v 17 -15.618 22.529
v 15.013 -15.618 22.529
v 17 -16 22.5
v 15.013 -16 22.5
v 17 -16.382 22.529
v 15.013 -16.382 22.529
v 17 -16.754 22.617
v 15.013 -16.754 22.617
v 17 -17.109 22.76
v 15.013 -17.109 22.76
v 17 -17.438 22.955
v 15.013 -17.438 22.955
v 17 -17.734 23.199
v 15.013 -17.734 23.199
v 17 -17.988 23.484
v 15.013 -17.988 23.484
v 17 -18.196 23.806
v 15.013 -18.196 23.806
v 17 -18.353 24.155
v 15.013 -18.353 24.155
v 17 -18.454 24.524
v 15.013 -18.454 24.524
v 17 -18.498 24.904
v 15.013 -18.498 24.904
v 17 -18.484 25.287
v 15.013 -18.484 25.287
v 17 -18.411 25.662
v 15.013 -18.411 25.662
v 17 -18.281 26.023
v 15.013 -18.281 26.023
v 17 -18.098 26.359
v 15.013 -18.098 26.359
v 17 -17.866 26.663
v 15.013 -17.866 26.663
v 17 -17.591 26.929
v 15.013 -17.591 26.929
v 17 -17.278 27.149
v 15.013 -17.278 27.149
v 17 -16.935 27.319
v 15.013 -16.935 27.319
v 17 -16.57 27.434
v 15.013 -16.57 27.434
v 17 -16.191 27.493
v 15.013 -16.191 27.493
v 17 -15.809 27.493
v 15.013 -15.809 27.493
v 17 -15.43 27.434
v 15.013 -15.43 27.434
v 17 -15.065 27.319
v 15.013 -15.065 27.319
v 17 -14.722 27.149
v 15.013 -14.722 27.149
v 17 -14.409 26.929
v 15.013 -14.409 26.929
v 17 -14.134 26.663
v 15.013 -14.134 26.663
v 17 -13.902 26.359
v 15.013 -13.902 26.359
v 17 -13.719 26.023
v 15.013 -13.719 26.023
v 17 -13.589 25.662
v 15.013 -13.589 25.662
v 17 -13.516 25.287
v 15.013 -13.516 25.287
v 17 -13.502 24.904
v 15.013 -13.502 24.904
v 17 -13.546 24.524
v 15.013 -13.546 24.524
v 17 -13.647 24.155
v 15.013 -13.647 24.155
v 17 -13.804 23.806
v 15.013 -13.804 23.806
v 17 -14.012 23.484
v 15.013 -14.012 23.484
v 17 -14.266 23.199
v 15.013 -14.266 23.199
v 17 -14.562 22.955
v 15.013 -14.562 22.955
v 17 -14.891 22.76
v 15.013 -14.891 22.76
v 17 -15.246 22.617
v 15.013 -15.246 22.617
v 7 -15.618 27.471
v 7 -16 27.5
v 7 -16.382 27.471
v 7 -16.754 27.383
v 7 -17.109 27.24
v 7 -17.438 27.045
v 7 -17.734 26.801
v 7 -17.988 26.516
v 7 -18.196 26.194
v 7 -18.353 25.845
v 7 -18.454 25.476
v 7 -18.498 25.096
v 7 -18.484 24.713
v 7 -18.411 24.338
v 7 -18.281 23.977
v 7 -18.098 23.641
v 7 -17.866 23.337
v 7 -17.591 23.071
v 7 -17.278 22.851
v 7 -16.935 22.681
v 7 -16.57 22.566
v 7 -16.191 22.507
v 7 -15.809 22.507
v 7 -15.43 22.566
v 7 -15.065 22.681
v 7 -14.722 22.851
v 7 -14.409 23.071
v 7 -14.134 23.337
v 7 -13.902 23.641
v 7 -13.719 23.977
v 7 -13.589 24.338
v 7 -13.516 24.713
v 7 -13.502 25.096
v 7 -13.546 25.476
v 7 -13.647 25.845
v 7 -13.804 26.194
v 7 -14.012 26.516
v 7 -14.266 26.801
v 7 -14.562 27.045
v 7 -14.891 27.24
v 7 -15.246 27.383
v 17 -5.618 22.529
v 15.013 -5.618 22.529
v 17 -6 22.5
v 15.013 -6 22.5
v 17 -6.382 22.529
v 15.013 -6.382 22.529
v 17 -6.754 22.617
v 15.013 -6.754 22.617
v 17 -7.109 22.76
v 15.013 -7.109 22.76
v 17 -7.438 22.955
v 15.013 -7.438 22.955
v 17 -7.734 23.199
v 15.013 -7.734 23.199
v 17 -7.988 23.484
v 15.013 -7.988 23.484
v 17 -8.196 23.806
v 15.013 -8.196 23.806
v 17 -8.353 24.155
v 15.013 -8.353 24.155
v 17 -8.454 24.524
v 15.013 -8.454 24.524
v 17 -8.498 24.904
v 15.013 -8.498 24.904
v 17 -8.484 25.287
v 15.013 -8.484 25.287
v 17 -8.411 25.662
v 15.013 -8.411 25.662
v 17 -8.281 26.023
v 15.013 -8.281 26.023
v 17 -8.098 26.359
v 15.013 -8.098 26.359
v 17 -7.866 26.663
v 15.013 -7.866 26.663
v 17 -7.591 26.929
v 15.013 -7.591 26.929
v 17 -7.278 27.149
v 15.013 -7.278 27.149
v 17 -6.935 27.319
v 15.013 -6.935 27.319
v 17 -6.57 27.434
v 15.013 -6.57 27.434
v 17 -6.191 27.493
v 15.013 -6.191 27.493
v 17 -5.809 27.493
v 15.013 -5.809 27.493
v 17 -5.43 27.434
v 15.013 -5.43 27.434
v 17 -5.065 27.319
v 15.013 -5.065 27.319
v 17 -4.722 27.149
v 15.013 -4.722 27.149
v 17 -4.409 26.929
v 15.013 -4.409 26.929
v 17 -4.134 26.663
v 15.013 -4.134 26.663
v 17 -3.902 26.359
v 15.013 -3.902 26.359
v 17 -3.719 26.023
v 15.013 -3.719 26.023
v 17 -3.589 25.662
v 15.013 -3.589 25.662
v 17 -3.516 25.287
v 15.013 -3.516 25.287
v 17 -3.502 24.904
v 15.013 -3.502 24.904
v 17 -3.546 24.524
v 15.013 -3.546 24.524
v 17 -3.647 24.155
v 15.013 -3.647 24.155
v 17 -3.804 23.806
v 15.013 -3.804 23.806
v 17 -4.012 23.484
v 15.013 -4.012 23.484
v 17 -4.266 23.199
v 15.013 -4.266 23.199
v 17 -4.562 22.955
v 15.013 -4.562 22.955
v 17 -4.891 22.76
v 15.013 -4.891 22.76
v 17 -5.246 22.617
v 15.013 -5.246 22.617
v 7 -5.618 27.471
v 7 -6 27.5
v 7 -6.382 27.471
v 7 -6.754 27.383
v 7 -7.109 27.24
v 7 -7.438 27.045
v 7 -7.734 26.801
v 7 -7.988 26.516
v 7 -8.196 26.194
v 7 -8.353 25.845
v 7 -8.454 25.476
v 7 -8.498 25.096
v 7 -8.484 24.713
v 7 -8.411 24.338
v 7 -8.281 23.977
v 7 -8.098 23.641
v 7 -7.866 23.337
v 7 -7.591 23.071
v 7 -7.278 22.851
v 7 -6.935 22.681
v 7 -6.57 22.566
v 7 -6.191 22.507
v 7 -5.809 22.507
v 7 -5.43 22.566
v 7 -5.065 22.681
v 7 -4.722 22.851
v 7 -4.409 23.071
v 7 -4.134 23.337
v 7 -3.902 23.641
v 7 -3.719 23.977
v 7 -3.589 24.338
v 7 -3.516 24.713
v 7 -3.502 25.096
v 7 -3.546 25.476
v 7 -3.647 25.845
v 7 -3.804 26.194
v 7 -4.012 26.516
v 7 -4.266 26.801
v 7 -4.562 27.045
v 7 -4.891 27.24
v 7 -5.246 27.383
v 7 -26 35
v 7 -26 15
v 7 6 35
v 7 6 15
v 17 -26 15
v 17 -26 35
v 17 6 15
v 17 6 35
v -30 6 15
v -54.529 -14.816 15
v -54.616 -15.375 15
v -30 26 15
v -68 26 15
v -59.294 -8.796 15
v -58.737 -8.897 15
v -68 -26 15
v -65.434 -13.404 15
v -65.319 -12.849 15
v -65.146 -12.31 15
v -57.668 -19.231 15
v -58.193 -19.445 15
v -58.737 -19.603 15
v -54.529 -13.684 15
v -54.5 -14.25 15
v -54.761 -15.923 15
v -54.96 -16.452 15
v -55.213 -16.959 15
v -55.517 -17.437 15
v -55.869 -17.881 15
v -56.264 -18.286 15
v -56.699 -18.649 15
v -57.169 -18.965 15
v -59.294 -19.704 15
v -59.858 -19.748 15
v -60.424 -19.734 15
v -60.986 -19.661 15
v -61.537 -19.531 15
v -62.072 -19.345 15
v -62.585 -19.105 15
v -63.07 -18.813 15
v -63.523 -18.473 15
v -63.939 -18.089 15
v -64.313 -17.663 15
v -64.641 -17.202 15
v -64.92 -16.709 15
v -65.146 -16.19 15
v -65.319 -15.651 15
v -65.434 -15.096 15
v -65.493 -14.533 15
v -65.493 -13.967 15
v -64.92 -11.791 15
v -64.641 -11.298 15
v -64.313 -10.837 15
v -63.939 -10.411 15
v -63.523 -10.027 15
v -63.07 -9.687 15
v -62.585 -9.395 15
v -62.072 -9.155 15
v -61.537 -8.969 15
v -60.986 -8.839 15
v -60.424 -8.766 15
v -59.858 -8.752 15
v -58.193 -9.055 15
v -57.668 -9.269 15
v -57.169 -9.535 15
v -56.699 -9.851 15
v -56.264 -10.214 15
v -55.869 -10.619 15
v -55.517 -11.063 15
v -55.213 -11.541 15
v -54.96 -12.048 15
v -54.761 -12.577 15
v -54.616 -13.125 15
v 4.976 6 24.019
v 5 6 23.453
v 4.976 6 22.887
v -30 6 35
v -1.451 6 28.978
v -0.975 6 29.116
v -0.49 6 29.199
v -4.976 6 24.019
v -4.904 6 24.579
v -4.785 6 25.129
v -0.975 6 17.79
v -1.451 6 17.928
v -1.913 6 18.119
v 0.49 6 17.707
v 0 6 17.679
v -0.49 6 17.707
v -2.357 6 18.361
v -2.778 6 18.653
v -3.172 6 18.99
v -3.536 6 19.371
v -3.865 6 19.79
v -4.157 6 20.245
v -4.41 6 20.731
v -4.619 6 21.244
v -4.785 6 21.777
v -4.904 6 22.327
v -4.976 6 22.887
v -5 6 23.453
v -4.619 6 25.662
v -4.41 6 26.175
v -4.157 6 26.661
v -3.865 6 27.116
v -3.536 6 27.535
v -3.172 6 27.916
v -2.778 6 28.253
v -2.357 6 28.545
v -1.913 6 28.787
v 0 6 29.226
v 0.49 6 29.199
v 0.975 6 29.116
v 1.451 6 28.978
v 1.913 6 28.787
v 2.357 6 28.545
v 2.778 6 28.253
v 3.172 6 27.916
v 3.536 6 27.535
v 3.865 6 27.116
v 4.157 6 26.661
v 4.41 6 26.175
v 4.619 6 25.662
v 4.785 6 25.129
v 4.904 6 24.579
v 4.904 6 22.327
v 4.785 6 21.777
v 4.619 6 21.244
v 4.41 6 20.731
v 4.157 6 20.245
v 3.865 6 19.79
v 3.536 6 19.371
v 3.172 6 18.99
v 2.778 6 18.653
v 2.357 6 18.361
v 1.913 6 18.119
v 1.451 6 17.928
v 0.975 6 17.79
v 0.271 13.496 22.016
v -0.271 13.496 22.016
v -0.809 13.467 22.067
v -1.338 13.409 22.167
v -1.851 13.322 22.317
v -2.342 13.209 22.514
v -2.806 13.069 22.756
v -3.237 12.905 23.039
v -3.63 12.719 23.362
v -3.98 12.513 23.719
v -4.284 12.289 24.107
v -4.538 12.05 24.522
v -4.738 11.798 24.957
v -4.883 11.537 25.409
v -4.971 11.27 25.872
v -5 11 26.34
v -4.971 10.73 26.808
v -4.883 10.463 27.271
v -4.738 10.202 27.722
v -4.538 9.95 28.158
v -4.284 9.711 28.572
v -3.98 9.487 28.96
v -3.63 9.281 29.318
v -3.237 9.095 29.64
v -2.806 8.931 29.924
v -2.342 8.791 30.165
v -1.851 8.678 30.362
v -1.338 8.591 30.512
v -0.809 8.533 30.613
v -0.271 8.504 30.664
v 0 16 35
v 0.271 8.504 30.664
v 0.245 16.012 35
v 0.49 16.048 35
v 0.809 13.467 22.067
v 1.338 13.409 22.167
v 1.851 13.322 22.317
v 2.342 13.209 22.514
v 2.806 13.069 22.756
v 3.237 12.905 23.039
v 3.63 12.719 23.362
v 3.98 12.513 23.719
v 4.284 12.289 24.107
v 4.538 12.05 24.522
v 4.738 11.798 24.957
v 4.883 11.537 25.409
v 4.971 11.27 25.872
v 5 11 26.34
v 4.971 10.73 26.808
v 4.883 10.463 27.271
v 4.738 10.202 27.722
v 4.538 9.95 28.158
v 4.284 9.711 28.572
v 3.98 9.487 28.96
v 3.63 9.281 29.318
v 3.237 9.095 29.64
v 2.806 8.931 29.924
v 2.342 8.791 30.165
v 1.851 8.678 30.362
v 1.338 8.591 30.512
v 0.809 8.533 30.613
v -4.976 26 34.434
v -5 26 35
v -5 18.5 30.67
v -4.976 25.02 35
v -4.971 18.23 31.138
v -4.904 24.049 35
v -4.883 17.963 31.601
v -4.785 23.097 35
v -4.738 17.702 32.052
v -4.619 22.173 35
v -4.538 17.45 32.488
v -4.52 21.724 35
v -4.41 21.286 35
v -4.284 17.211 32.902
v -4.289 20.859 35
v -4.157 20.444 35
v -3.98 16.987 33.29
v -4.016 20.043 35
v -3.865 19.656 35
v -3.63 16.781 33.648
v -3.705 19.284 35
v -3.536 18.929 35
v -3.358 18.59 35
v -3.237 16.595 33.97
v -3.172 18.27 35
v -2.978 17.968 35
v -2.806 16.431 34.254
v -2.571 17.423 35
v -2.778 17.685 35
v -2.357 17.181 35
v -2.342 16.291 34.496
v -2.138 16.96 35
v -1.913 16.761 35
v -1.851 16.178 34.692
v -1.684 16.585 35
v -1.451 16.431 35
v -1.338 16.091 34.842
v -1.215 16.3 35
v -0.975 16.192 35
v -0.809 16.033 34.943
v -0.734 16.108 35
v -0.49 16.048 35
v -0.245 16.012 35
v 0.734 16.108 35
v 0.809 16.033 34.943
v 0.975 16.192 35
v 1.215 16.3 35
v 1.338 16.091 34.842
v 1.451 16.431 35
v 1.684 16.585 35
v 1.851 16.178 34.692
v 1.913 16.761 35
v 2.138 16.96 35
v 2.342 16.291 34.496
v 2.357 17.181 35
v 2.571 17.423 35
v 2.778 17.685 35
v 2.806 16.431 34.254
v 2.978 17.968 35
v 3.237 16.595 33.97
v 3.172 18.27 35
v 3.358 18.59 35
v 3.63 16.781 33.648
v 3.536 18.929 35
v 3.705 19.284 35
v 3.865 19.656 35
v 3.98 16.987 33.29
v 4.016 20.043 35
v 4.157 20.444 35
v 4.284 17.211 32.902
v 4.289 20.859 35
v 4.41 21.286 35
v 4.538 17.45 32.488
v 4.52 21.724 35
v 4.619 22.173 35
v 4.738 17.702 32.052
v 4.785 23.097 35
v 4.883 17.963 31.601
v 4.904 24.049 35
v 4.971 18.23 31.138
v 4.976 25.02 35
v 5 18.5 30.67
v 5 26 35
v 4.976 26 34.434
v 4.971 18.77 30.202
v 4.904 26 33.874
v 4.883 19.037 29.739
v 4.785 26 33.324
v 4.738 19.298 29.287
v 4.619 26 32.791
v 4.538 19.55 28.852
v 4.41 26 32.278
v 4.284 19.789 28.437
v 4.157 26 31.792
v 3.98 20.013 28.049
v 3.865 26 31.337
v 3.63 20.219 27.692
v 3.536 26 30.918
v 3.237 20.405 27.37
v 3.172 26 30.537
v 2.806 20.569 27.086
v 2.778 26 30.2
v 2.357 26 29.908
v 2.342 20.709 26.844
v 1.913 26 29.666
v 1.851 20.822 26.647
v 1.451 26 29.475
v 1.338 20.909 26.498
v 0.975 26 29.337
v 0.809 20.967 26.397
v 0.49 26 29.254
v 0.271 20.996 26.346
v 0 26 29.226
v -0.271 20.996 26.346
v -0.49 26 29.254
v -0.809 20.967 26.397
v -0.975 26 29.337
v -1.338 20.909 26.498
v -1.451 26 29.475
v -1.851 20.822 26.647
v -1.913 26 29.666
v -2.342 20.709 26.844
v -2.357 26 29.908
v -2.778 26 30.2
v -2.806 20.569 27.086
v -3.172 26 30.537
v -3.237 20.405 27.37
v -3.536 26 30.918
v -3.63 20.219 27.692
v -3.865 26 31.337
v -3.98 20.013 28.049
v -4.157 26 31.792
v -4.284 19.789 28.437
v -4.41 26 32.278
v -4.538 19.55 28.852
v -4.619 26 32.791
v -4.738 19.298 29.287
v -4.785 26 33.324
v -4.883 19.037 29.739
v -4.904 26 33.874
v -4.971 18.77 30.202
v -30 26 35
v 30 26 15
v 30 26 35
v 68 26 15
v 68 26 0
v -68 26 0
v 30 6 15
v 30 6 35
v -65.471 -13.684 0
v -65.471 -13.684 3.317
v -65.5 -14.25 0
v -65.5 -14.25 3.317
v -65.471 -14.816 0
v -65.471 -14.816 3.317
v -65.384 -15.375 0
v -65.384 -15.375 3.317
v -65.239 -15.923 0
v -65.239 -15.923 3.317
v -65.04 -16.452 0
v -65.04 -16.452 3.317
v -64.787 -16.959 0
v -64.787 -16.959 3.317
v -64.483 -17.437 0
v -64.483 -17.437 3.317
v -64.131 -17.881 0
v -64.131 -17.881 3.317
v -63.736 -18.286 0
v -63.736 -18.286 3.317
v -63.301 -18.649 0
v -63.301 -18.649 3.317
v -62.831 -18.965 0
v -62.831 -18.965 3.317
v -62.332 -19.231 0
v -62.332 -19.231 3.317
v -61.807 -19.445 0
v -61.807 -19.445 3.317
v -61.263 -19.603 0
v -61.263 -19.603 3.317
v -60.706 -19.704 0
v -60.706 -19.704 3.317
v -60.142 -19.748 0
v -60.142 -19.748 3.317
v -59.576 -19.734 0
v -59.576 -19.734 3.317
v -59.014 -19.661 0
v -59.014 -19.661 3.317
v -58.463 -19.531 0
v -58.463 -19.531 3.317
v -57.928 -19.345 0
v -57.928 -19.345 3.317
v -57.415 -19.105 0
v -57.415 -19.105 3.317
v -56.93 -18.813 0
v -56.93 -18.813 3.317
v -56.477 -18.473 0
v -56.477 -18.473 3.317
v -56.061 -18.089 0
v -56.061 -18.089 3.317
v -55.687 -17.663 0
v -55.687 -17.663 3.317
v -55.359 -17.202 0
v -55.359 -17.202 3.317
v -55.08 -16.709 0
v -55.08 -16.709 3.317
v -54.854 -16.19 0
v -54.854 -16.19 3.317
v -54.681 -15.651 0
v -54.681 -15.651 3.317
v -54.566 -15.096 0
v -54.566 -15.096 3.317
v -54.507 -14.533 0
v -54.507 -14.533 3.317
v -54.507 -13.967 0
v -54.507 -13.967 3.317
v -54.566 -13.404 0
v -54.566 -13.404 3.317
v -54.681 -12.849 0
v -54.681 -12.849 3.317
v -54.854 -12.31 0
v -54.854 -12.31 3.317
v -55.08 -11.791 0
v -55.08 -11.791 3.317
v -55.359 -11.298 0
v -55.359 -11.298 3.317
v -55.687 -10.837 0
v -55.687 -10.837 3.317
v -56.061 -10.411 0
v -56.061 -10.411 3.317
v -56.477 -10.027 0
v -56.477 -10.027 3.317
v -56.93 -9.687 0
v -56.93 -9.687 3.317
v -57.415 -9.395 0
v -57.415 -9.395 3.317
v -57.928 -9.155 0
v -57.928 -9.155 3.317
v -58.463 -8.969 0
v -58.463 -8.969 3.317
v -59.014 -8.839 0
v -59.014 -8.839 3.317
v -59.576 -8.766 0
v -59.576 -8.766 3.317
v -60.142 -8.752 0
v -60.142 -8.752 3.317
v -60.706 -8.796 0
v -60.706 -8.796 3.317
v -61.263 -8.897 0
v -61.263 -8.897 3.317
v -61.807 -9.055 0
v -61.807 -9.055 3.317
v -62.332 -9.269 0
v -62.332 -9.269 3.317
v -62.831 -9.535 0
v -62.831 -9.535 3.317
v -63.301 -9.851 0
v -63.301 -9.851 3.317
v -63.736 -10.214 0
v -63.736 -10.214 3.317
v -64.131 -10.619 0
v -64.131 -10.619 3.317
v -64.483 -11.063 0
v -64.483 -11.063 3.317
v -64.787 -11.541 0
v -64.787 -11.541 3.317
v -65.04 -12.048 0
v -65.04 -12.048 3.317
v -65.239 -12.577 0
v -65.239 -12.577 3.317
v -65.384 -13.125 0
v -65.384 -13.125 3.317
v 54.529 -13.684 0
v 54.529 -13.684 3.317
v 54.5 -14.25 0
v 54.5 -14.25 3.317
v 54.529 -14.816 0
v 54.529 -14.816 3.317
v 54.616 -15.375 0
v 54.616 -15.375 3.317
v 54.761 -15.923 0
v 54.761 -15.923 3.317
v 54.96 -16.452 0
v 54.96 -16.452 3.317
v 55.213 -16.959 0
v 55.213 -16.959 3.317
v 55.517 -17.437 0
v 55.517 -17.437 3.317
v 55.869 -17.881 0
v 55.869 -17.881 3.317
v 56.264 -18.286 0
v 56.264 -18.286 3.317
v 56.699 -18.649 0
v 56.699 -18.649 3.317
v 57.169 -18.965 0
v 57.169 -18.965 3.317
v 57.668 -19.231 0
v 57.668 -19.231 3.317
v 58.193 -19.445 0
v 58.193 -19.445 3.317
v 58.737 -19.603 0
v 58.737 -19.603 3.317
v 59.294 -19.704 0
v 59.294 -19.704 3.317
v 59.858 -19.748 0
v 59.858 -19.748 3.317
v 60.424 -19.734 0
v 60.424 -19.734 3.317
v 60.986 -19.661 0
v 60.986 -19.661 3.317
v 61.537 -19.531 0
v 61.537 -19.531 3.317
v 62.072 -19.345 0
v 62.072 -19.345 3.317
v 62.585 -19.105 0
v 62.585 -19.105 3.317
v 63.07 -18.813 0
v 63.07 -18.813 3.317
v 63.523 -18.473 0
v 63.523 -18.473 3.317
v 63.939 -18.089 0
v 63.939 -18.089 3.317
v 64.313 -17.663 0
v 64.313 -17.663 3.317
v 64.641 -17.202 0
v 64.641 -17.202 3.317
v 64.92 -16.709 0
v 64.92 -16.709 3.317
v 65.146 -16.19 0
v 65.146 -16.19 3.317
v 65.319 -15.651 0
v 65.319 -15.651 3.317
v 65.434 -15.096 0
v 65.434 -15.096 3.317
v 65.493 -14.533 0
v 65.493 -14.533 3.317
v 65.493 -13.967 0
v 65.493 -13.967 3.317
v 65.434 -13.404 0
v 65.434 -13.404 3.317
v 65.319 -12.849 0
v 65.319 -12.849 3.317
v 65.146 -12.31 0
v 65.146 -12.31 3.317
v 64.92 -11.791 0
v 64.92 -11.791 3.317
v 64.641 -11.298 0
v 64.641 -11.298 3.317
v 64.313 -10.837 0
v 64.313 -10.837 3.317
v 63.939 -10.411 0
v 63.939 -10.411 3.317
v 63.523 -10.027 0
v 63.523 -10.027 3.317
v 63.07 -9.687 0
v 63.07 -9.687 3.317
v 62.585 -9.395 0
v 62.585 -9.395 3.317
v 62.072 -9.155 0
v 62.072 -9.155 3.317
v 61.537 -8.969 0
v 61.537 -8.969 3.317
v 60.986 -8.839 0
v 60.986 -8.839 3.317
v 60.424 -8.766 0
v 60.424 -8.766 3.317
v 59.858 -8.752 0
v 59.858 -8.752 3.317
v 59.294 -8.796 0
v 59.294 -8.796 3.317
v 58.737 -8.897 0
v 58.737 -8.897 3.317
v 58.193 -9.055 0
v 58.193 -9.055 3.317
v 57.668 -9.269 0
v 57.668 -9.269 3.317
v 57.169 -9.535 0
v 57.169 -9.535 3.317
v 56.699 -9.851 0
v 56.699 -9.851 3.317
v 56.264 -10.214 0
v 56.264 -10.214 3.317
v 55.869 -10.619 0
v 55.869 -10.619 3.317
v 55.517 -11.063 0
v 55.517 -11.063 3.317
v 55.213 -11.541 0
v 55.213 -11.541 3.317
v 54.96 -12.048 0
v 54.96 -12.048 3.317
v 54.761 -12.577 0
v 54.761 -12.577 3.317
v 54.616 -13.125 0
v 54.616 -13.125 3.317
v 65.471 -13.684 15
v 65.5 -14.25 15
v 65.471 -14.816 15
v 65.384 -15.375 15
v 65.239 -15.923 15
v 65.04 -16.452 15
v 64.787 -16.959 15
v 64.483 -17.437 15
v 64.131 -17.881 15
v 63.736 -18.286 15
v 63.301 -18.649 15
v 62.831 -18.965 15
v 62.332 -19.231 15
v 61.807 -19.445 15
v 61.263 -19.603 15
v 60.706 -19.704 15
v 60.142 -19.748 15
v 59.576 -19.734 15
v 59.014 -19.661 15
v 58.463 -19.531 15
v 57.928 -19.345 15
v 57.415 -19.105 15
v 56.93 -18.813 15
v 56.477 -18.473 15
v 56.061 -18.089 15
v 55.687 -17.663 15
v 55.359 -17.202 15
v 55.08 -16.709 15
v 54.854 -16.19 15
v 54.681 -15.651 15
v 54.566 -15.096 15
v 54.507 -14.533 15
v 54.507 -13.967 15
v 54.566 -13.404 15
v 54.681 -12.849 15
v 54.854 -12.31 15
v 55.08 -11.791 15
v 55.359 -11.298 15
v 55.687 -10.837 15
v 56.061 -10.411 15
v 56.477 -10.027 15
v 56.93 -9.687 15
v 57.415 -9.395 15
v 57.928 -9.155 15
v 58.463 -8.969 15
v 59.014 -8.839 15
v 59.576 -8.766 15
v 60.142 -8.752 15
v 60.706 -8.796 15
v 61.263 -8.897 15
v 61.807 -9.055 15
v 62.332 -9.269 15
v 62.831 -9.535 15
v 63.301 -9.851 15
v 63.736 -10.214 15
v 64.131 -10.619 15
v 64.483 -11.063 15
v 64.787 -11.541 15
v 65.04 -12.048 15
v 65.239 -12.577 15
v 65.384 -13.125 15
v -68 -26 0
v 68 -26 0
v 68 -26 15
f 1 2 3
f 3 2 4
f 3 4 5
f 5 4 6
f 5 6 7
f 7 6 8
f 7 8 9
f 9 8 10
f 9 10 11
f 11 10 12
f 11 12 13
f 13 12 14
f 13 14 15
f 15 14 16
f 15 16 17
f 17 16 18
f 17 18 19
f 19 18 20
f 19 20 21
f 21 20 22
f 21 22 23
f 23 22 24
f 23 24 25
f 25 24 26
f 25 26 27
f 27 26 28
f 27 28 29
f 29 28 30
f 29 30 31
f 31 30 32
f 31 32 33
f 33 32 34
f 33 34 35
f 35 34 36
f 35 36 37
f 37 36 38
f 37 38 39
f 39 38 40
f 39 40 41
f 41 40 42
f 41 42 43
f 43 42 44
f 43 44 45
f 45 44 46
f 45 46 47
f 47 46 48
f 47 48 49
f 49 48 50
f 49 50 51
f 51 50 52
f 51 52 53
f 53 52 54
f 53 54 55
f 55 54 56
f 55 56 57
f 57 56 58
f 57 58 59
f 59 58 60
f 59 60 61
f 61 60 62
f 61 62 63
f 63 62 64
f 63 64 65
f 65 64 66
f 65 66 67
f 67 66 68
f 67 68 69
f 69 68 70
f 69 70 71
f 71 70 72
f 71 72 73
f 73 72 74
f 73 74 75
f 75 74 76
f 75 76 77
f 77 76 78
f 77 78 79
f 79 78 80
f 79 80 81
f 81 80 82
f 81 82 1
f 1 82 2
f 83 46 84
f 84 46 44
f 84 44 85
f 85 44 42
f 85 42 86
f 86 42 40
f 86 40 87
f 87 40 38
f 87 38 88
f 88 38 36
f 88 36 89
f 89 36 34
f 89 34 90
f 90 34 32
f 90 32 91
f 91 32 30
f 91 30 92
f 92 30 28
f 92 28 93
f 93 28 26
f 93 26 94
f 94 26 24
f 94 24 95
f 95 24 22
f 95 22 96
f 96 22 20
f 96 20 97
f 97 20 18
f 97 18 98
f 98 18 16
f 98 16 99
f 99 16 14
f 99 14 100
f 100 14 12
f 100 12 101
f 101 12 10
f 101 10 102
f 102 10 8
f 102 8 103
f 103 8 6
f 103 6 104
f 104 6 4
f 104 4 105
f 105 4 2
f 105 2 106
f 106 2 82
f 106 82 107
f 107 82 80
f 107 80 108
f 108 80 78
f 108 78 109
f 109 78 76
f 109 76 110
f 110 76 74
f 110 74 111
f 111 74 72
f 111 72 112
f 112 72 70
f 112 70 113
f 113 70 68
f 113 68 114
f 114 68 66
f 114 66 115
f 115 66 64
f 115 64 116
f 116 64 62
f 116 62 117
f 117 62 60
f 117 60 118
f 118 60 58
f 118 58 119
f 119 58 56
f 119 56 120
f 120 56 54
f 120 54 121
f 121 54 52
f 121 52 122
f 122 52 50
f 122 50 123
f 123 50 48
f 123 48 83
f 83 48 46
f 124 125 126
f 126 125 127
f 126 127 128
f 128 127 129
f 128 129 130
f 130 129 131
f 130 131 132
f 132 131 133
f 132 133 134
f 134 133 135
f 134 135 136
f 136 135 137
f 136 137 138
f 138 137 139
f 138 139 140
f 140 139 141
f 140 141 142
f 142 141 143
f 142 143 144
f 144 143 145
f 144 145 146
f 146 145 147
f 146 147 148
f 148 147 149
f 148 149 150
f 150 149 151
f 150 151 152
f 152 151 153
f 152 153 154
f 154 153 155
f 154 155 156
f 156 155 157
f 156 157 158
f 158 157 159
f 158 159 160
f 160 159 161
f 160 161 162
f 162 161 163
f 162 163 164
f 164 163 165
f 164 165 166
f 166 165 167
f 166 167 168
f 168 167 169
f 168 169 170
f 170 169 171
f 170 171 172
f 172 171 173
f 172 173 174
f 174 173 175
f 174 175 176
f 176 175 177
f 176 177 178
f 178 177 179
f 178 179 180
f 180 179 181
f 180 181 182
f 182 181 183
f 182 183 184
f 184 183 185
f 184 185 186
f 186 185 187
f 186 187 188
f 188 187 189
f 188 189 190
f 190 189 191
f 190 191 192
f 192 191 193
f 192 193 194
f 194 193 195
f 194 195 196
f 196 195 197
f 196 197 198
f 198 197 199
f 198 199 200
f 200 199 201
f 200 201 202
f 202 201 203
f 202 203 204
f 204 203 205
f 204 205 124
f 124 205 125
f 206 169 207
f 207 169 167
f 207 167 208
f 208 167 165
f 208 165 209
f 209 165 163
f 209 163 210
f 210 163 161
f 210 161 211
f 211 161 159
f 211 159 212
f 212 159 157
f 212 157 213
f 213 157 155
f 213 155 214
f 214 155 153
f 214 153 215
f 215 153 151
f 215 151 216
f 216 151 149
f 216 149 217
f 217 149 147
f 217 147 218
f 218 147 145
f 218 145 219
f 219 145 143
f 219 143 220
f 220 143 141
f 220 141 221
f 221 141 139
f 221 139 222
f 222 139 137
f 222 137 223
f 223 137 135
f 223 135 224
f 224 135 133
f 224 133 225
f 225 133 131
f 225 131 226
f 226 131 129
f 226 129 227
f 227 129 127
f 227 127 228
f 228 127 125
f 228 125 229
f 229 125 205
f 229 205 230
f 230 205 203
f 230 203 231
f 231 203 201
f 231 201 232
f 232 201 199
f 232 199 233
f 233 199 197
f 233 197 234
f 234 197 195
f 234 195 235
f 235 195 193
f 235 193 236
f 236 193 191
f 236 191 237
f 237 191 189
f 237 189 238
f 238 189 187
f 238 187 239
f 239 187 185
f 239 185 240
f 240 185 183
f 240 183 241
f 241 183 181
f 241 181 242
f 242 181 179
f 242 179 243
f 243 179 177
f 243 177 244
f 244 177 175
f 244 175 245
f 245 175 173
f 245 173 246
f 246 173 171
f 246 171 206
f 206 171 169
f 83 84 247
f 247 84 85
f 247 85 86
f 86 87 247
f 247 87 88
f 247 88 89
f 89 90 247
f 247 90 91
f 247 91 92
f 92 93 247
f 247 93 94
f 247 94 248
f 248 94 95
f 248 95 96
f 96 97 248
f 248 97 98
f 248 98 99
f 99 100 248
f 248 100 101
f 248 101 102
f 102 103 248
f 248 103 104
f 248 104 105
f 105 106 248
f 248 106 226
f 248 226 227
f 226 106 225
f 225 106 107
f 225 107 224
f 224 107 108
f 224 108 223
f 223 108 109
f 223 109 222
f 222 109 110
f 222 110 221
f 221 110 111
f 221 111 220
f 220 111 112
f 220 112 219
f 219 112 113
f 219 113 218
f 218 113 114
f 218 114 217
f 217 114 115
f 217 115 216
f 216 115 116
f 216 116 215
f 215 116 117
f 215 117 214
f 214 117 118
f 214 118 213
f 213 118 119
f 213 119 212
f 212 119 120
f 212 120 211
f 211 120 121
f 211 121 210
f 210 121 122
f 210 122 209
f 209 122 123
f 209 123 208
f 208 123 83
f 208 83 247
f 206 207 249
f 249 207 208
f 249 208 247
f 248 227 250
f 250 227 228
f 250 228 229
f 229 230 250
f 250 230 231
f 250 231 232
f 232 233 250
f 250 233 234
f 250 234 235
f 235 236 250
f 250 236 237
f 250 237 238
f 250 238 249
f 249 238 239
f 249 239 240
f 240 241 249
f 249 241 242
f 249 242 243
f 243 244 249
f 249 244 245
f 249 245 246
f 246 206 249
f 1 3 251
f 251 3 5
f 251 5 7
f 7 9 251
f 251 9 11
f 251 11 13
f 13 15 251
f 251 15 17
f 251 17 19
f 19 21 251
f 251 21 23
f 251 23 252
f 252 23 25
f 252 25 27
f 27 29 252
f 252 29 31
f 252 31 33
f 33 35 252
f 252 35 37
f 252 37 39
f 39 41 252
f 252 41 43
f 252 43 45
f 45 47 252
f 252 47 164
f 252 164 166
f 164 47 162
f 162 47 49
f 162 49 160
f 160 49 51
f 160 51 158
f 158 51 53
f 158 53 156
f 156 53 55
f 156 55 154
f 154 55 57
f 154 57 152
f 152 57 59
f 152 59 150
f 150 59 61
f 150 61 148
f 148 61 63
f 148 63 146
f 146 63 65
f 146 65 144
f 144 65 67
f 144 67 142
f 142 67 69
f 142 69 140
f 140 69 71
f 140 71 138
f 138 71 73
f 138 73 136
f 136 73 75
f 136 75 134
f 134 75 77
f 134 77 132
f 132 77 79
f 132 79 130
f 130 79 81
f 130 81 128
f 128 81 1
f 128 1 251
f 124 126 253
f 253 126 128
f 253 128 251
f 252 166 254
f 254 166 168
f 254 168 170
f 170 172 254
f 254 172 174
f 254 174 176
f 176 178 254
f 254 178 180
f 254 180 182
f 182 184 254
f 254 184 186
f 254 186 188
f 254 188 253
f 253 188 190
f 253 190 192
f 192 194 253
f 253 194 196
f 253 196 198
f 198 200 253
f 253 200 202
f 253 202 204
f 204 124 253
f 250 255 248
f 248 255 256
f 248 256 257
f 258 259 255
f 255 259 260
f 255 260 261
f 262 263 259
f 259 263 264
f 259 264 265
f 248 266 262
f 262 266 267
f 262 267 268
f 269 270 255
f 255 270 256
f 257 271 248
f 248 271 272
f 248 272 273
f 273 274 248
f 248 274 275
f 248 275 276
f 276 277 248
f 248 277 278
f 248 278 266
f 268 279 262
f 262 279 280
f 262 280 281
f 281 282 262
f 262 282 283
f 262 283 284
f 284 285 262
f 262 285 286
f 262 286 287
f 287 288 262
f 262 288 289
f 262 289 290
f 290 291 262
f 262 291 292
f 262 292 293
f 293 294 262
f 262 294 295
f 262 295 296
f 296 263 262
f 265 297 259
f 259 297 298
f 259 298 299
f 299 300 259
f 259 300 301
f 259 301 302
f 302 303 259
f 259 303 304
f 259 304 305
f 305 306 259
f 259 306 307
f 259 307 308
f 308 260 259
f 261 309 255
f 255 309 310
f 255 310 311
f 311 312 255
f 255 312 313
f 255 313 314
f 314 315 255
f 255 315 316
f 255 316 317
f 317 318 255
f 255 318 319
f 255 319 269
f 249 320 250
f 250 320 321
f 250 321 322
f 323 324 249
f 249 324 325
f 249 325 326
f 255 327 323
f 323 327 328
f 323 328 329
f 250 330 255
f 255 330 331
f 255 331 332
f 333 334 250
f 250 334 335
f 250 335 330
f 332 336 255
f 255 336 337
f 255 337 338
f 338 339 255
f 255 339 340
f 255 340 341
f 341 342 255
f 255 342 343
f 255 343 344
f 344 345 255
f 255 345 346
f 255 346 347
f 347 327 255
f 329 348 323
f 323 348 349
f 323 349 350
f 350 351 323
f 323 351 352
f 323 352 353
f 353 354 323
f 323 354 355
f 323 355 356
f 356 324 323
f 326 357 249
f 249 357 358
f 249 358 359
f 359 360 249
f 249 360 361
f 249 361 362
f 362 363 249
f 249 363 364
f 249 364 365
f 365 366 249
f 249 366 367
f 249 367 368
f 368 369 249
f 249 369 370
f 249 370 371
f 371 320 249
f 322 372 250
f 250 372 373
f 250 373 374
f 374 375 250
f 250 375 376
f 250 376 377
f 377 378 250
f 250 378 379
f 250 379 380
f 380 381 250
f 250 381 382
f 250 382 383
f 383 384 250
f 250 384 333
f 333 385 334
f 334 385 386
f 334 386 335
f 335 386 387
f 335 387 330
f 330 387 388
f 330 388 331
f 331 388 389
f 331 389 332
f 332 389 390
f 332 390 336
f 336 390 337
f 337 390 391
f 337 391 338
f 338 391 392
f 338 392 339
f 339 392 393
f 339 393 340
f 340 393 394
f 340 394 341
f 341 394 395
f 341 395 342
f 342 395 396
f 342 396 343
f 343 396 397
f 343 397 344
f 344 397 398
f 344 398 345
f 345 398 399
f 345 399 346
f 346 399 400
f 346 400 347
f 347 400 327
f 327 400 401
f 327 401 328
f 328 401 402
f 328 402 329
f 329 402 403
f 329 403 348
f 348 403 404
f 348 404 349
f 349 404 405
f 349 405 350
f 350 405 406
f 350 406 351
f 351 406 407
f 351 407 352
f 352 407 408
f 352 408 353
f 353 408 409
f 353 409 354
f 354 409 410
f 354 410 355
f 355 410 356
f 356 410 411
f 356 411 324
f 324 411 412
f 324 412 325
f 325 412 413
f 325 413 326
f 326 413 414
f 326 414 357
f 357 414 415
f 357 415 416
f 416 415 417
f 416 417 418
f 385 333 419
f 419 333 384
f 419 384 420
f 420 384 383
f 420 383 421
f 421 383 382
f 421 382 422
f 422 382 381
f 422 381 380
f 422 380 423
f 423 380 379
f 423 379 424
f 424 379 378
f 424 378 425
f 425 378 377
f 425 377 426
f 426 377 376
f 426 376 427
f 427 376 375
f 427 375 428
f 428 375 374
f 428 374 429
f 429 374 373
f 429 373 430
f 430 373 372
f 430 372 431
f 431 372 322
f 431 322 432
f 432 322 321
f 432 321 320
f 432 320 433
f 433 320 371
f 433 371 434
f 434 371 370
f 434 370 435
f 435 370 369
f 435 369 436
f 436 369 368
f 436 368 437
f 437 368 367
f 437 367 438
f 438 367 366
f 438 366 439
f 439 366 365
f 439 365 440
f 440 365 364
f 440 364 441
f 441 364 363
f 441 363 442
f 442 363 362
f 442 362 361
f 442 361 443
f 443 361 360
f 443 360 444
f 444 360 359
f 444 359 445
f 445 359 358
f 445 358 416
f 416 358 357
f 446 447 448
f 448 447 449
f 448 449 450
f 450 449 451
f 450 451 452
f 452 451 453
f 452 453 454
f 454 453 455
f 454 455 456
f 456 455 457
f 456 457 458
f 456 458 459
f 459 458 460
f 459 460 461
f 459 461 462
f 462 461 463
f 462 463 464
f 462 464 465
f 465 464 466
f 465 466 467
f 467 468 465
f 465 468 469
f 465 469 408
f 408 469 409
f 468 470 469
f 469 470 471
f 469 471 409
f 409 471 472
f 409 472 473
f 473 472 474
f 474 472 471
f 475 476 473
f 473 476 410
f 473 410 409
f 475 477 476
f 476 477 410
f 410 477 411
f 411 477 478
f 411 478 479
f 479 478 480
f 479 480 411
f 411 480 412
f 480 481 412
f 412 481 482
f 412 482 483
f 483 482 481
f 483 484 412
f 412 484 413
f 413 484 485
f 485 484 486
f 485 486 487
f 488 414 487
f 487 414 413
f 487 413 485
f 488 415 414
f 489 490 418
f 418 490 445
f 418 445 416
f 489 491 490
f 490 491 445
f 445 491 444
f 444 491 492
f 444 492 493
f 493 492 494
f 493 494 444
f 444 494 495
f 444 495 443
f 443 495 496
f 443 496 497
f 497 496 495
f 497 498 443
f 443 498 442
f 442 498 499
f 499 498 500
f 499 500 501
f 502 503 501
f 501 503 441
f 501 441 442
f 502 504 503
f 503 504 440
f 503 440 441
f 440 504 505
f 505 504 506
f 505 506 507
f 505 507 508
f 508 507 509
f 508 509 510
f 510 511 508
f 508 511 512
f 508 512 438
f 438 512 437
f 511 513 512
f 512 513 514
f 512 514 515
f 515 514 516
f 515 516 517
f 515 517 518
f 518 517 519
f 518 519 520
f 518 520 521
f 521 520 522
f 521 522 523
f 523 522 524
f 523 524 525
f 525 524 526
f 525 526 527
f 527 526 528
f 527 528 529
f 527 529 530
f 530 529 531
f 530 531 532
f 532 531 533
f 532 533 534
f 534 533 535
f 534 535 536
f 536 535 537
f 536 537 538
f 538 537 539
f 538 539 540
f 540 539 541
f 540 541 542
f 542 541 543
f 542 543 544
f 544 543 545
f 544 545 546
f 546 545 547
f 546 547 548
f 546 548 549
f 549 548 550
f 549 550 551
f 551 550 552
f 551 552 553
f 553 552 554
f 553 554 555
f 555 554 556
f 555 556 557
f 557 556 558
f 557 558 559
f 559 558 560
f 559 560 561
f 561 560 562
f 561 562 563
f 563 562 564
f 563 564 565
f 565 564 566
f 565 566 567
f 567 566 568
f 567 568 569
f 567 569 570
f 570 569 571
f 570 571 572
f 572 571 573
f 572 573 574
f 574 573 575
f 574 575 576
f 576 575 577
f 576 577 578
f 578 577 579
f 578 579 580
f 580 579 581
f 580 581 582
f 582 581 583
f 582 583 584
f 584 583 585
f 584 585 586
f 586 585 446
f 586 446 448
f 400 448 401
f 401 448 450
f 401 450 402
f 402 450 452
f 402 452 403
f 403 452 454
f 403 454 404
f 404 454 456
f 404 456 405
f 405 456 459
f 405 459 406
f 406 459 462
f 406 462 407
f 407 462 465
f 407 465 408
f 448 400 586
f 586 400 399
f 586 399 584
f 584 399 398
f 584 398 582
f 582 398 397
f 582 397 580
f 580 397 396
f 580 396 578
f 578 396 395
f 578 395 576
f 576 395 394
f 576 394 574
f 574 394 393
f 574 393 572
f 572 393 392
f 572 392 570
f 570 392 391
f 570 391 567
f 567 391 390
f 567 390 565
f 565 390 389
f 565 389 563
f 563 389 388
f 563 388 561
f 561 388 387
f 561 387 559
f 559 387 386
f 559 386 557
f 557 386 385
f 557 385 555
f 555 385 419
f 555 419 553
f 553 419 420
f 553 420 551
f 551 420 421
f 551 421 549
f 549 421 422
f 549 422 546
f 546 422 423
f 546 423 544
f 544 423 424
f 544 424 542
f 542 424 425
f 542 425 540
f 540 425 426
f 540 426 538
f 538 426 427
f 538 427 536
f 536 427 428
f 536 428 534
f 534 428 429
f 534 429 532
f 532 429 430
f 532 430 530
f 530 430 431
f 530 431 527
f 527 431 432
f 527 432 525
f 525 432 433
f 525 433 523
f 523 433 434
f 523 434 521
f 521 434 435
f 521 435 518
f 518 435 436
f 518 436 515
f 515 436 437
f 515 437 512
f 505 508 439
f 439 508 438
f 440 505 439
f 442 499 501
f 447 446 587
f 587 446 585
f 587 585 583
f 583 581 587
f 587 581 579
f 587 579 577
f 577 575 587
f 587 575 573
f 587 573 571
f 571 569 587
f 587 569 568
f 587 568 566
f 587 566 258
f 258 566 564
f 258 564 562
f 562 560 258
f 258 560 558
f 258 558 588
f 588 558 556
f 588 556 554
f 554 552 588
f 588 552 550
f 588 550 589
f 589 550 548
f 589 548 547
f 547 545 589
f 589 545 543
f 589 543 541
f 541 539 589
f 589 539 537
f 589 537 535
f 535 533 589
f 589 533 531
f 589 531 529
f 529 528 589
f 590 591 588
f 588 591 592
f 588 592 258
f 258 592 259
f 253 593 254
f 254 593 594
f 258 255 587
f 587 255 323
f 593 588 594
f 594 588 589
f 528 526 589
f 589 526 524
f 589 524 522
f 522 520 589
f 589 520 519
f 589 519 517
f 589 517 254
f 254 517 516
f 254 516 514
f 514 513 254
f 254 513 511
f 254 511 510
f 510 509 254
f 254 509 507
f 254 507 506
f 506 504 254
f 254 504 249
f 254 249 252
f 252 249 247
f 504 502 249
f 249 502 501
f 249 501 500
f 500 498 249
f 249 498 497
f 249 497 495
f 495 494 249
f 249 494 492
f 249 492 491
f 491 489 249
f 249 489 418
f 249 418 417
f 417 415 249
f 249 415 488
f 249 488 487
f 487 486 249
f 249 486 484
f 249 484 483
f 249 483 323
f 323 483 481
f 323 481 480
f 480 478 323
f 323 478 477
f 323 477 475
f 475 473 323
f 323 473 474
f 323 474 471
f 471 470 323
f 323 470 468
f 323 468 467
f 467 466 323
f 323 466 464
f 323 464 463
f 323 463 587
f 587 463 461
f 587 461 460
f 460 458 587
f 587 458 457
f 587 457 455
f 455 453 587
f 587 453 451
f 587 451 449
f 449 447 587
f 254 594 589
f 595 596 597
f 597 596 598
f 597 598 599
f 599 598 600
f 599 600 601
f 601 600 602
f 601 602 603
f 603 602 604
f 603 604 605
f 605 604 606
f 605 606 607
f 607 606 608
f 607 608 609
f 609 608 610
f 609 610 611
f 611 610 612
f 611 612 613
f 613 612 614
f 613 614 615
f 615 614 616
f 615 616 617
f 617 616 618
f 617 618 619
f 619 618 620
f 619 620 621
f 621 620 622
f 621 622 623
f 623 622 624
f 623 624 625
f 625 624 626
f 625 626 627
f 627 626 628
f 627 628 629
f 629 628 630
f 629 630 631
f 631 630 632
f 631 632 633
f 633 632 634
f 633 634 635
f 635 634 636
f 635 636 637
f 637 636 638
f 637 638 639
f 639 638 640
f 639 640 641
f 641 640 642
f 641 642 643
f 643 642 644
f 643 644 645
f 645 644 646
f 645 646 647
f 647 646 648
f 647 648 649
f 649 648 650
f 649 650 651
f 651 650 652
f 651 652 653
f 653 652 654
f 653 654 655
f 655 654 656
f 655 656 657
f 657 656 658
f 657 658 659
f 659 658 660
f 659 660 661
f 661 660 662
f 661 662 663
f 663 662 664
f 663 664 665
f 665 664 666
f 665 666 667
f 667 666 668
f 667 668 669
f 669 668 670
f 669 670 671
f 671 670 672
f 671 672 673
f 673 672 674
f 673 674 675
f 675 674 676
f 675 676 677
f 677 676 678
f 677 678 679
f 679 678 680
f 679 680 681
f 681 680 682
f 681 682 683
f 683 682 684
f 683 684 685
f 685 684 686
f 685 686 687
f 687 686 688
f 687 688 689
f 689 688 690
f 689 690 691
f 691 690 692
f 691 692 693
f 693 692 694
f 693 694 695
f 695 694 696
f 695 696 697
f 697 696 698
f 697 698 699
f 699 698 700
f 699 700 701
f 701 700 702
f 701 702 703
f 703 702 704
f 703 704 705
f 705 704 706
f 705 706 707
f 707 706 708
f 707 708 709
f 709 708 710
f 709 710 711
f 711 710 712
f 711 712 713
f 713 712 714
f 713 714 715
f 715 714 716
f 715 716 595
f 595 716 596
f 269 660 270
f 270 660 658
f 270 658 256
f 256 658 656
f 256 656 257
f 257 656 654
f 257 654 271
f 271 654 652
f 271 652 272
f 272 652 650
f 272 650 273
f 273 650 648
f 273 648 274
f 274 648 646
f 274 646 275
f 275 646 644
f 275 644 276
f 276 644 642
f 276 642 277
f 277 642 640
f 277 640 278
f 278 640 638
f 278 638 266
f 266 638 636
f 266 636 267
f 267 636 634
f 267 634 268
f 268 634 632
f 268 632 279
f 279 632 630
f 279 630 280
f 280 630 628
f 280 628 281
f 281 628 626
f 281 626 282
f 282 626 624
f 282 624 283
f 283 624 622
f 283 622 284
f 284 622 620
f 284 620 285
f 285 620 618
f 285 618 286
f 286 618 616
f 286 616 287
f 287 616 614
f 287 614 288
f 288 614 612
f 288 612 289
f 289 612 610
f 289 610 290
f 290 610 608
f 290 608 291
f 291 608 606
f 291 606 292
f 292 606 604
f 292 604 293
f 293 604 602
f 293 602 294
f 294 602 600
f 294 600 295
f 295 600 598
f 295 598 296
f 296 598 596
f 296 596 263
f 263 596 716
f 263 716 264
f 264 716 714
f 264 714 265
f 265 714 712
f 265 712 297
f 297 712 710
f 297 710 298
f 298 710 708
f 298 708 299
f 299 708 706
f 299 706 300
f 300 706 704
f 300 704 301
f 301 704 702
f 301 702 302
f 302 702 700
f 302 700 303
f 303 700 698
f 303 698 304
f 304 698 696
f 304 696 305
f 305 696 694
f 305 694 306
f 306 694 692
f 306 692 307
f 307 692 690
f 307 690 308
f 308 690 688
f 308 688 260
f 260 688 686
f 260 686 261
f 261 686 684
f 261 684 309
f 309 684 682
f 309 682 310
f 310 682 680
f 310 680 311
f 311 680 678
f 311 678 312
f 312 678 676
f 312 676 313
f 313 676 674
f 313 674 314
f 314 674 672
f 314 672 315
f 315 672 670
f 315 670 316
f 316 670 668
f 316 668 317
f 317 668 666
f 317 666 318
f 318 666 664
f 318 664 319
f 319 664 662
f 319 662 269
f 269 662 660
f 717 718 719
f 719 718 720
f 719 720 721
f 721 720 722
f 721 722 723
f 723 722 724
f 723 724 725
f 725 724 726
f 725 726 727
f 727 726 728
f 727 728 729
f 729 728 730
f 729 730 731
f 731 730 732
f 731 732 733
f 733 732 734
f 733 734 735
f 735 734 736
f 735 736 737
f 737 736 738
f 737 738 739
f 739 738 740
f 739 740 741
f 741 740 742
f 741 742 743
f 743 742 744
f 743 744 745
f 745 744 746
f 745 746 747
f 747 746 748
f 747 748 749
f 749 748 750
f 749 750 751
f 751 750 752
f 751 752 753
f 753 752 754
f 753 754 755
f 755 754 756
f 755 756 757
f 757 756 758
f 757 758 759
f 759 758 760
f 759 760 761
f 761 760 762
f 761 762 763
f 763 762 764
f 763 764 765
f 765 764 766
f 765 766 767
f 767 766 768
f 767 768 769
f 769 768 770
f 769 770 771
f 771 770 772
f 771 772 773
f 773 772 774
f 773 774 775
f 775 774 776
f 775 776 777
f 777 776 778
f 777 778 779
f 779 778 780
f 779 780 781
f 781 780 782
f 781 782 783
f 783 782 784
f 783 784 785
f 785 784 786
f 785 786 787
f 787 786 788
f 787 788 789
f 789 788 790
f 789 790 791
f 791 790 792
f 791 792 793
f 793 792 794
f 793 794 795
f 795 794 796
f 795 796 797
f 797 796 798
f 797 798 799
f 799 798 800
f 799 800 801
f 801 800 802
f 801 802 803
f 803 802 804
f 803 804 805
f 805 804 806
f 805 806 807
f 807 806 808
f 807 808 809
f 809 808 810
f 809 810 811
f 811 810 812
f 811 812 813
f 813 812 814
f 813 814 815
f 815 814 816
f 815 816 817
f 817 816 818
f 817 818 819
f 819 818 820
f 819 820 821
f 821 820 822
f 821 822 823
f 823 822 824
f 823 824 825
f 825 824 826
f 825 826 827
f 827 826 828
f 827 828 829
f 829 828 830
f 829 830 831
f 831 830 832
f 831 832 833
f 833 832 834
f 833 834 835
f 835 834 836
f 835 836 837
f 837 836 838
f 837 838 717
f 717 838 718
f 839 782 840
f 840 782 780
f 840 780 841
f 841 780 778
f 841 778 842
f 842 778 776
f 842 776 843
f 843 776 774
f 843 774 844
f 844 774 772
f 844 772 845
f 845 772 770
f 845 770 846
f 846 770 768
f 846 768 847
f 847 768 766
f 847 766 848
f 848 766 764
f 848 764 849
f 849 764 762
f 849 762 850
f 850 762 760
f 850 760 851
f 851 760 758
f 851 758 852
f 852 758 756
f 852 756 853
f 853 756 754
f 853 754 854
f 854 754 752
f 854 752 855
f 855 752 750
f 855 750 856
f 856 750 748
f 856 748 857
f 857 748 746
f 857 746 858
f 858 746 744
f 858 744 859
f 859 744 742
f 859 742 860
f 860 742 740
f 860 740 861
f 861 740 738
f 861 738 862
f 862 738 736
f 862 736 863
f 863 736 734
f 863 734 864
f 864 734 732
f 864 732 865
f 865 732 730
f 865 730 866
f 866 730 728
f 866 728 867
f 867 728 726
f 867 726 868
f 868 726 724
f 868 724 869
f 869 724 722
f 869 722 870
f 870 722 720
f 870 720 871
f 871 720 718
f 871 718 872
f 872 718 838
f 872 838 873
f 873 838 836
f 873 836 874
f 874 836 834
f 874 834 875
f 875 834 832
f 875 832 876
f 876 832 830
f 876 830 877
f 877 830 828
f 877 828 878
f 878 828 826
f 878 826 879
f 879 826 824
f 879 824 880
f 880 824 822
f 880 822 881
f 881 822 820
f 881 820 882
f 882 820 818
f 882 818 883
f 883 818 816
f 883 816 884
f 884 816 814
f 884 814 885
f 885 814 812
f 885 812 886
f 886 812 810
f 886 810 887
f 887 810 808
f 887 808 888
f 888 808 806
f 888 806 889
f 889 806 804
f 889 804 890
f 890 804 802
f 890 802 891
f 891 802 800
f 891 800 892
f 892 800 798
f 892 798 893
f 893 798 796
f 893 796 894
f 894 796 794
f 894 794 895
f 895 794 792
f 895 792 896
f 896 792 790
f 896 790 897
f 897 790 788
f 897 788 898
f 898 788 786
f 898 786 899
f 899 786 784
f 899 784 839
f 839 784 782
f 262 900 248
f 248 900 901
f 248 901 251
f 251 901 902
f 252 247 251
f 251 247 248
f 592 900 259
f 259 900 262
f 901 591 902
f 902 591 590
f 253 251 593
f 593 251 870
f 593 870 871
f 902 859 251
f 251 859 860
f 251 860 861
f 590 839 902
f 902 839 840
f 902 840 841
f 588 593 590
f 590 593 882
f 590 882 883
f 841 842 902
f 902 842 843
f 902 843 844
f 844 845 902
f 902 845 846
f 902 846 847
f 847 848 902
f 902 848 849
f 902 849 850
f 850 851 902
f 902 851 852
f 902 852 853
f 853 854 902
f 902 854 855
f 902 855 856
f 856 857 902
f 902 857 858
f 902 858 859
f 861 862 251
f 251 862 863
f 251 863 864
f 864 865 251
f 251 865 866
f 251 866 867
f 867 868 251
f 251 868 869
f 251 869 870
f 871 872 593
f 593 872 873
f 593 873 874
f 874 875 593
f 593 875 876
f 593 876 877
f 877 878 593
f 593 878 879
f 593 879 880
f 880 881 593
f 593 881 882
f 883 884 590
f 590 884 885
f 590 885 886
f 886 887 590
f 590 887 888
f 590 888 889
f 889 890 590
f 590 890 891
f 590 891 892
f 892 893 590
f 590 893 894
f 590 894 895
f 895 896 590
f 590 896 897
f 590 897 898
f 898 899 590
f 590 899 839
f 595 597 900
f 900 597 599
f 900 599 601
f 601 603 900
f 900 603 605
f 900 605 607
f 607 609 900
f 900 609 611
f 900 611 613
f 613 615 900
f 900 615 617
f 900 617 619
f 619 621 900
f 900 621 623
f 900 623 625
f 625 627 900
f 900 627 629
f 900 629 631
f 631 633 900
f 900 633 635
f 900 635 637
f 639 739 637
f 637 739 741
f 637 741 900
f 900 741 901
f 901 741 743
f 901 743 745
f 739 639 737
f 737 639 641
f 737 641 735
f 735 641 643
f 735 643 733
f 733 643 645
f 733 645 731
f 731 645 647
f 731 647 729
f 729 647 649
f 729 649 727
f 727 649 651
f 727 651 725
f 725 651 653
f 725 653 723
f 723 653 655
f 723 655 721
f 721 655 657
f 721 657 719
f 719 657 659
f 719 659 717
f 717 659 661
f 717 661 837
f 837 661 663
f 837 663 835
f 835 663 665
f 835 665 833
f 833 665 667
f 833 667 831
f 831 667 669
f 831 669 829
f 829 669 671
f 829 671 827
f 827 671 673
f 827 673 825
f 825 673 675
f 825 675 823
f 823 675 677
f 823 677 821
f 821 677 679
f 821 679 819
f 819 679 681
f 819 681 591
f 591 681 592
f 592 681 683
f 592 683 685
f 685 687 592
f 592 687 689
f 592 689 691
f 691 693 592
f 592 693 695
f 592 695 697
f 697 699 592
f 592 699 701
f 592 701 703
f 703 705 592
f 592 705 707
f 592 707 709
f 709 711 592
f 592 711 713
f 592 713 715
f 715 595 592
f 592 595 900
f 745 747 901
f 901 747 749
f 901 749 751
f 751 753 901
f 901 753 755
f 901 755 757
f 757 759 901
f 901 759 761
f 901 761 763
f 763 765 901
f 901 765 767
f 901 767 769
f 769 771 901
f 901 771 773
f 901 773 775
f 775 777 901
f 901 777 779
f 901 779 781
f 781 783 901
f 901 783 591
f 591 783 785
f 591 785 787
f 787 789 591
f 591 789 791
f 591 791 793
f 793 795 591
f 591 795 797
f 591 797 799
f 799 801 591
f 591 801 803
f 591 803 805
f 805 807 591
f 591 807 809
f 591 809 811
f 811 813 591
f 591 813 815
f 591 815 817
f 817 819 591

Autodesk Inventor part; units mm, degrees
ref_plane "YZ Plane" through (0, 0, 0) normal (1, 0, 0) x (0, 1, 0)
ref_plane "XZ Plane" through (0, 0, 0) normal (0, 1, 0) x (-1, 0, 0)
sketch "Sketch1" plane through (0, 0, 0) normal (0, 0, 1) x (1, 0, 0)
  line L0 (-68, 26) -> (68, 26)
  line L1 (68, 26) -> (68, -26)
  line L2 (68, -26) -> (-68, -26)
  line L3 (-68, -26) -> (-68, 26)
  point P0 (0, 0)
  point P1 (-68, 0)
  point P2 (0, 26)
  dimension "d0" = 136
  dimension "d1" = 52
extrude "Extrusion1" add sketch "Sketch1" along normal blind 15
sketch "Sketch9" plane through (0, 0, 15) normal (0, 0, 1) x (1, 0, 0)
  circle A0 centre (-60, -14.25) radius 4 projected
  line L0 (188.1551, -73.0673) -> (-511.8449, -73.0673) projected
  circle A1 centre (60, -14.25) radius 4 projected
  point P0 (0, 0)
hole "Hole3" at (-60, -14.25, 15) at (60, -14.25, 15) direction (0, 0, -1) diameter 11 end through all
sketch "Sketch10" plane through (0, 0, 15) normal (0, 0, 1) x (1, 0, 0)
  line L0 (30, 6) -> (-30, 6)
  line L1 (-30, 6) -> (-30, 26)
  line L2 (-30, 26) -> (30, 26)
  line L3 (30, 26) -> (30, 6)
  line L4 (-68, -26) -> (68, -26) projected
  line L5 (68, 26) -> (-68, 26) projected
  point P0 (0, 0)
  point P1 (0, 6)
  dimension "d47" = 60
  dimension "d56" = 20
extrude "Extrusion6" add sketch "Sketch10" along normal blind 20
ref_plane "Work Plane1" through (-30, 6, 35) normal (0, -0.8660254, -0.5) x (1, 0, 0)
sketch "Sketch11" plane through (-30, 6, 35) normal (0, -0.8660254, -0.5) x (1, 0, 0)
  circle A0 centre (30, -10) radius 5
  line L0 (0, 0) -> (60, 0) projected
  point P0 (30, -27.3109)
  point P1 (30, 0)
  dimension "d52" = 10
  dimension "d53" = 10
extrude "Extrusion7" cut sketch "Sketch11" against normal blind 33
sketch "Sketch12" plane through (0, 11, 26.3397) normal (0, 0.8660254, 0.5) x (1, 0, 0)
  circle A0 centre (0, 0) radius 5 projected
  point P0 (0, 17.3109)
extrude "Extrusion8" cut sketch "Sketch12" against normal up to surface surface through (-30, 6, 15) normal (0, -1, 0)
sketch "Sketch13" plane through (0, 0, 15) normal (0, 0, 1) x (1, 0, 0)
  line L0 (17, -26) -> (7, -26)
  line L1 (7, -26) -> (7, 6)
  line L2 (7, 6) -> (17, 6)
  line L3 (17, 6) -> (17, -26)
  line L4 (-30, 6) -> (30, 6) projected
  line L5 (-68, -26) -> (68, -26) projected
  ellipse E0 centre (0, 26) end of major axis (0, 36) minor radius 5 (-5, 26) -> (5, 26) ccw projected
  line L6 (5, 6) -> (-5, 6) projected
  point P0 (0, 0)
  dimension "d59" = 10
  dimension "d62" = 2
extrude "Extrusion9" add sketch "Sketch13" along normal up to surface (20 mm away)
sketch "Sketch14" plane through (7, -26, 15) normal (-1, 0, 0) x (0, 0, 1)
  line L0 (0, 0) -> (20, 0) projected
  point P0 (-15, 26)
  point P1 (10, 10)
  point P2 (10, 20)
  point P3 (10, 0)
  dimension "d65" = 10
  dimension "d66" = 10
hole "Hole4" at (7, -16, 25) at (7, -6, 25) direction (1, 0, 0) diameter 5 end through all
properties part number "0008-30-014"
